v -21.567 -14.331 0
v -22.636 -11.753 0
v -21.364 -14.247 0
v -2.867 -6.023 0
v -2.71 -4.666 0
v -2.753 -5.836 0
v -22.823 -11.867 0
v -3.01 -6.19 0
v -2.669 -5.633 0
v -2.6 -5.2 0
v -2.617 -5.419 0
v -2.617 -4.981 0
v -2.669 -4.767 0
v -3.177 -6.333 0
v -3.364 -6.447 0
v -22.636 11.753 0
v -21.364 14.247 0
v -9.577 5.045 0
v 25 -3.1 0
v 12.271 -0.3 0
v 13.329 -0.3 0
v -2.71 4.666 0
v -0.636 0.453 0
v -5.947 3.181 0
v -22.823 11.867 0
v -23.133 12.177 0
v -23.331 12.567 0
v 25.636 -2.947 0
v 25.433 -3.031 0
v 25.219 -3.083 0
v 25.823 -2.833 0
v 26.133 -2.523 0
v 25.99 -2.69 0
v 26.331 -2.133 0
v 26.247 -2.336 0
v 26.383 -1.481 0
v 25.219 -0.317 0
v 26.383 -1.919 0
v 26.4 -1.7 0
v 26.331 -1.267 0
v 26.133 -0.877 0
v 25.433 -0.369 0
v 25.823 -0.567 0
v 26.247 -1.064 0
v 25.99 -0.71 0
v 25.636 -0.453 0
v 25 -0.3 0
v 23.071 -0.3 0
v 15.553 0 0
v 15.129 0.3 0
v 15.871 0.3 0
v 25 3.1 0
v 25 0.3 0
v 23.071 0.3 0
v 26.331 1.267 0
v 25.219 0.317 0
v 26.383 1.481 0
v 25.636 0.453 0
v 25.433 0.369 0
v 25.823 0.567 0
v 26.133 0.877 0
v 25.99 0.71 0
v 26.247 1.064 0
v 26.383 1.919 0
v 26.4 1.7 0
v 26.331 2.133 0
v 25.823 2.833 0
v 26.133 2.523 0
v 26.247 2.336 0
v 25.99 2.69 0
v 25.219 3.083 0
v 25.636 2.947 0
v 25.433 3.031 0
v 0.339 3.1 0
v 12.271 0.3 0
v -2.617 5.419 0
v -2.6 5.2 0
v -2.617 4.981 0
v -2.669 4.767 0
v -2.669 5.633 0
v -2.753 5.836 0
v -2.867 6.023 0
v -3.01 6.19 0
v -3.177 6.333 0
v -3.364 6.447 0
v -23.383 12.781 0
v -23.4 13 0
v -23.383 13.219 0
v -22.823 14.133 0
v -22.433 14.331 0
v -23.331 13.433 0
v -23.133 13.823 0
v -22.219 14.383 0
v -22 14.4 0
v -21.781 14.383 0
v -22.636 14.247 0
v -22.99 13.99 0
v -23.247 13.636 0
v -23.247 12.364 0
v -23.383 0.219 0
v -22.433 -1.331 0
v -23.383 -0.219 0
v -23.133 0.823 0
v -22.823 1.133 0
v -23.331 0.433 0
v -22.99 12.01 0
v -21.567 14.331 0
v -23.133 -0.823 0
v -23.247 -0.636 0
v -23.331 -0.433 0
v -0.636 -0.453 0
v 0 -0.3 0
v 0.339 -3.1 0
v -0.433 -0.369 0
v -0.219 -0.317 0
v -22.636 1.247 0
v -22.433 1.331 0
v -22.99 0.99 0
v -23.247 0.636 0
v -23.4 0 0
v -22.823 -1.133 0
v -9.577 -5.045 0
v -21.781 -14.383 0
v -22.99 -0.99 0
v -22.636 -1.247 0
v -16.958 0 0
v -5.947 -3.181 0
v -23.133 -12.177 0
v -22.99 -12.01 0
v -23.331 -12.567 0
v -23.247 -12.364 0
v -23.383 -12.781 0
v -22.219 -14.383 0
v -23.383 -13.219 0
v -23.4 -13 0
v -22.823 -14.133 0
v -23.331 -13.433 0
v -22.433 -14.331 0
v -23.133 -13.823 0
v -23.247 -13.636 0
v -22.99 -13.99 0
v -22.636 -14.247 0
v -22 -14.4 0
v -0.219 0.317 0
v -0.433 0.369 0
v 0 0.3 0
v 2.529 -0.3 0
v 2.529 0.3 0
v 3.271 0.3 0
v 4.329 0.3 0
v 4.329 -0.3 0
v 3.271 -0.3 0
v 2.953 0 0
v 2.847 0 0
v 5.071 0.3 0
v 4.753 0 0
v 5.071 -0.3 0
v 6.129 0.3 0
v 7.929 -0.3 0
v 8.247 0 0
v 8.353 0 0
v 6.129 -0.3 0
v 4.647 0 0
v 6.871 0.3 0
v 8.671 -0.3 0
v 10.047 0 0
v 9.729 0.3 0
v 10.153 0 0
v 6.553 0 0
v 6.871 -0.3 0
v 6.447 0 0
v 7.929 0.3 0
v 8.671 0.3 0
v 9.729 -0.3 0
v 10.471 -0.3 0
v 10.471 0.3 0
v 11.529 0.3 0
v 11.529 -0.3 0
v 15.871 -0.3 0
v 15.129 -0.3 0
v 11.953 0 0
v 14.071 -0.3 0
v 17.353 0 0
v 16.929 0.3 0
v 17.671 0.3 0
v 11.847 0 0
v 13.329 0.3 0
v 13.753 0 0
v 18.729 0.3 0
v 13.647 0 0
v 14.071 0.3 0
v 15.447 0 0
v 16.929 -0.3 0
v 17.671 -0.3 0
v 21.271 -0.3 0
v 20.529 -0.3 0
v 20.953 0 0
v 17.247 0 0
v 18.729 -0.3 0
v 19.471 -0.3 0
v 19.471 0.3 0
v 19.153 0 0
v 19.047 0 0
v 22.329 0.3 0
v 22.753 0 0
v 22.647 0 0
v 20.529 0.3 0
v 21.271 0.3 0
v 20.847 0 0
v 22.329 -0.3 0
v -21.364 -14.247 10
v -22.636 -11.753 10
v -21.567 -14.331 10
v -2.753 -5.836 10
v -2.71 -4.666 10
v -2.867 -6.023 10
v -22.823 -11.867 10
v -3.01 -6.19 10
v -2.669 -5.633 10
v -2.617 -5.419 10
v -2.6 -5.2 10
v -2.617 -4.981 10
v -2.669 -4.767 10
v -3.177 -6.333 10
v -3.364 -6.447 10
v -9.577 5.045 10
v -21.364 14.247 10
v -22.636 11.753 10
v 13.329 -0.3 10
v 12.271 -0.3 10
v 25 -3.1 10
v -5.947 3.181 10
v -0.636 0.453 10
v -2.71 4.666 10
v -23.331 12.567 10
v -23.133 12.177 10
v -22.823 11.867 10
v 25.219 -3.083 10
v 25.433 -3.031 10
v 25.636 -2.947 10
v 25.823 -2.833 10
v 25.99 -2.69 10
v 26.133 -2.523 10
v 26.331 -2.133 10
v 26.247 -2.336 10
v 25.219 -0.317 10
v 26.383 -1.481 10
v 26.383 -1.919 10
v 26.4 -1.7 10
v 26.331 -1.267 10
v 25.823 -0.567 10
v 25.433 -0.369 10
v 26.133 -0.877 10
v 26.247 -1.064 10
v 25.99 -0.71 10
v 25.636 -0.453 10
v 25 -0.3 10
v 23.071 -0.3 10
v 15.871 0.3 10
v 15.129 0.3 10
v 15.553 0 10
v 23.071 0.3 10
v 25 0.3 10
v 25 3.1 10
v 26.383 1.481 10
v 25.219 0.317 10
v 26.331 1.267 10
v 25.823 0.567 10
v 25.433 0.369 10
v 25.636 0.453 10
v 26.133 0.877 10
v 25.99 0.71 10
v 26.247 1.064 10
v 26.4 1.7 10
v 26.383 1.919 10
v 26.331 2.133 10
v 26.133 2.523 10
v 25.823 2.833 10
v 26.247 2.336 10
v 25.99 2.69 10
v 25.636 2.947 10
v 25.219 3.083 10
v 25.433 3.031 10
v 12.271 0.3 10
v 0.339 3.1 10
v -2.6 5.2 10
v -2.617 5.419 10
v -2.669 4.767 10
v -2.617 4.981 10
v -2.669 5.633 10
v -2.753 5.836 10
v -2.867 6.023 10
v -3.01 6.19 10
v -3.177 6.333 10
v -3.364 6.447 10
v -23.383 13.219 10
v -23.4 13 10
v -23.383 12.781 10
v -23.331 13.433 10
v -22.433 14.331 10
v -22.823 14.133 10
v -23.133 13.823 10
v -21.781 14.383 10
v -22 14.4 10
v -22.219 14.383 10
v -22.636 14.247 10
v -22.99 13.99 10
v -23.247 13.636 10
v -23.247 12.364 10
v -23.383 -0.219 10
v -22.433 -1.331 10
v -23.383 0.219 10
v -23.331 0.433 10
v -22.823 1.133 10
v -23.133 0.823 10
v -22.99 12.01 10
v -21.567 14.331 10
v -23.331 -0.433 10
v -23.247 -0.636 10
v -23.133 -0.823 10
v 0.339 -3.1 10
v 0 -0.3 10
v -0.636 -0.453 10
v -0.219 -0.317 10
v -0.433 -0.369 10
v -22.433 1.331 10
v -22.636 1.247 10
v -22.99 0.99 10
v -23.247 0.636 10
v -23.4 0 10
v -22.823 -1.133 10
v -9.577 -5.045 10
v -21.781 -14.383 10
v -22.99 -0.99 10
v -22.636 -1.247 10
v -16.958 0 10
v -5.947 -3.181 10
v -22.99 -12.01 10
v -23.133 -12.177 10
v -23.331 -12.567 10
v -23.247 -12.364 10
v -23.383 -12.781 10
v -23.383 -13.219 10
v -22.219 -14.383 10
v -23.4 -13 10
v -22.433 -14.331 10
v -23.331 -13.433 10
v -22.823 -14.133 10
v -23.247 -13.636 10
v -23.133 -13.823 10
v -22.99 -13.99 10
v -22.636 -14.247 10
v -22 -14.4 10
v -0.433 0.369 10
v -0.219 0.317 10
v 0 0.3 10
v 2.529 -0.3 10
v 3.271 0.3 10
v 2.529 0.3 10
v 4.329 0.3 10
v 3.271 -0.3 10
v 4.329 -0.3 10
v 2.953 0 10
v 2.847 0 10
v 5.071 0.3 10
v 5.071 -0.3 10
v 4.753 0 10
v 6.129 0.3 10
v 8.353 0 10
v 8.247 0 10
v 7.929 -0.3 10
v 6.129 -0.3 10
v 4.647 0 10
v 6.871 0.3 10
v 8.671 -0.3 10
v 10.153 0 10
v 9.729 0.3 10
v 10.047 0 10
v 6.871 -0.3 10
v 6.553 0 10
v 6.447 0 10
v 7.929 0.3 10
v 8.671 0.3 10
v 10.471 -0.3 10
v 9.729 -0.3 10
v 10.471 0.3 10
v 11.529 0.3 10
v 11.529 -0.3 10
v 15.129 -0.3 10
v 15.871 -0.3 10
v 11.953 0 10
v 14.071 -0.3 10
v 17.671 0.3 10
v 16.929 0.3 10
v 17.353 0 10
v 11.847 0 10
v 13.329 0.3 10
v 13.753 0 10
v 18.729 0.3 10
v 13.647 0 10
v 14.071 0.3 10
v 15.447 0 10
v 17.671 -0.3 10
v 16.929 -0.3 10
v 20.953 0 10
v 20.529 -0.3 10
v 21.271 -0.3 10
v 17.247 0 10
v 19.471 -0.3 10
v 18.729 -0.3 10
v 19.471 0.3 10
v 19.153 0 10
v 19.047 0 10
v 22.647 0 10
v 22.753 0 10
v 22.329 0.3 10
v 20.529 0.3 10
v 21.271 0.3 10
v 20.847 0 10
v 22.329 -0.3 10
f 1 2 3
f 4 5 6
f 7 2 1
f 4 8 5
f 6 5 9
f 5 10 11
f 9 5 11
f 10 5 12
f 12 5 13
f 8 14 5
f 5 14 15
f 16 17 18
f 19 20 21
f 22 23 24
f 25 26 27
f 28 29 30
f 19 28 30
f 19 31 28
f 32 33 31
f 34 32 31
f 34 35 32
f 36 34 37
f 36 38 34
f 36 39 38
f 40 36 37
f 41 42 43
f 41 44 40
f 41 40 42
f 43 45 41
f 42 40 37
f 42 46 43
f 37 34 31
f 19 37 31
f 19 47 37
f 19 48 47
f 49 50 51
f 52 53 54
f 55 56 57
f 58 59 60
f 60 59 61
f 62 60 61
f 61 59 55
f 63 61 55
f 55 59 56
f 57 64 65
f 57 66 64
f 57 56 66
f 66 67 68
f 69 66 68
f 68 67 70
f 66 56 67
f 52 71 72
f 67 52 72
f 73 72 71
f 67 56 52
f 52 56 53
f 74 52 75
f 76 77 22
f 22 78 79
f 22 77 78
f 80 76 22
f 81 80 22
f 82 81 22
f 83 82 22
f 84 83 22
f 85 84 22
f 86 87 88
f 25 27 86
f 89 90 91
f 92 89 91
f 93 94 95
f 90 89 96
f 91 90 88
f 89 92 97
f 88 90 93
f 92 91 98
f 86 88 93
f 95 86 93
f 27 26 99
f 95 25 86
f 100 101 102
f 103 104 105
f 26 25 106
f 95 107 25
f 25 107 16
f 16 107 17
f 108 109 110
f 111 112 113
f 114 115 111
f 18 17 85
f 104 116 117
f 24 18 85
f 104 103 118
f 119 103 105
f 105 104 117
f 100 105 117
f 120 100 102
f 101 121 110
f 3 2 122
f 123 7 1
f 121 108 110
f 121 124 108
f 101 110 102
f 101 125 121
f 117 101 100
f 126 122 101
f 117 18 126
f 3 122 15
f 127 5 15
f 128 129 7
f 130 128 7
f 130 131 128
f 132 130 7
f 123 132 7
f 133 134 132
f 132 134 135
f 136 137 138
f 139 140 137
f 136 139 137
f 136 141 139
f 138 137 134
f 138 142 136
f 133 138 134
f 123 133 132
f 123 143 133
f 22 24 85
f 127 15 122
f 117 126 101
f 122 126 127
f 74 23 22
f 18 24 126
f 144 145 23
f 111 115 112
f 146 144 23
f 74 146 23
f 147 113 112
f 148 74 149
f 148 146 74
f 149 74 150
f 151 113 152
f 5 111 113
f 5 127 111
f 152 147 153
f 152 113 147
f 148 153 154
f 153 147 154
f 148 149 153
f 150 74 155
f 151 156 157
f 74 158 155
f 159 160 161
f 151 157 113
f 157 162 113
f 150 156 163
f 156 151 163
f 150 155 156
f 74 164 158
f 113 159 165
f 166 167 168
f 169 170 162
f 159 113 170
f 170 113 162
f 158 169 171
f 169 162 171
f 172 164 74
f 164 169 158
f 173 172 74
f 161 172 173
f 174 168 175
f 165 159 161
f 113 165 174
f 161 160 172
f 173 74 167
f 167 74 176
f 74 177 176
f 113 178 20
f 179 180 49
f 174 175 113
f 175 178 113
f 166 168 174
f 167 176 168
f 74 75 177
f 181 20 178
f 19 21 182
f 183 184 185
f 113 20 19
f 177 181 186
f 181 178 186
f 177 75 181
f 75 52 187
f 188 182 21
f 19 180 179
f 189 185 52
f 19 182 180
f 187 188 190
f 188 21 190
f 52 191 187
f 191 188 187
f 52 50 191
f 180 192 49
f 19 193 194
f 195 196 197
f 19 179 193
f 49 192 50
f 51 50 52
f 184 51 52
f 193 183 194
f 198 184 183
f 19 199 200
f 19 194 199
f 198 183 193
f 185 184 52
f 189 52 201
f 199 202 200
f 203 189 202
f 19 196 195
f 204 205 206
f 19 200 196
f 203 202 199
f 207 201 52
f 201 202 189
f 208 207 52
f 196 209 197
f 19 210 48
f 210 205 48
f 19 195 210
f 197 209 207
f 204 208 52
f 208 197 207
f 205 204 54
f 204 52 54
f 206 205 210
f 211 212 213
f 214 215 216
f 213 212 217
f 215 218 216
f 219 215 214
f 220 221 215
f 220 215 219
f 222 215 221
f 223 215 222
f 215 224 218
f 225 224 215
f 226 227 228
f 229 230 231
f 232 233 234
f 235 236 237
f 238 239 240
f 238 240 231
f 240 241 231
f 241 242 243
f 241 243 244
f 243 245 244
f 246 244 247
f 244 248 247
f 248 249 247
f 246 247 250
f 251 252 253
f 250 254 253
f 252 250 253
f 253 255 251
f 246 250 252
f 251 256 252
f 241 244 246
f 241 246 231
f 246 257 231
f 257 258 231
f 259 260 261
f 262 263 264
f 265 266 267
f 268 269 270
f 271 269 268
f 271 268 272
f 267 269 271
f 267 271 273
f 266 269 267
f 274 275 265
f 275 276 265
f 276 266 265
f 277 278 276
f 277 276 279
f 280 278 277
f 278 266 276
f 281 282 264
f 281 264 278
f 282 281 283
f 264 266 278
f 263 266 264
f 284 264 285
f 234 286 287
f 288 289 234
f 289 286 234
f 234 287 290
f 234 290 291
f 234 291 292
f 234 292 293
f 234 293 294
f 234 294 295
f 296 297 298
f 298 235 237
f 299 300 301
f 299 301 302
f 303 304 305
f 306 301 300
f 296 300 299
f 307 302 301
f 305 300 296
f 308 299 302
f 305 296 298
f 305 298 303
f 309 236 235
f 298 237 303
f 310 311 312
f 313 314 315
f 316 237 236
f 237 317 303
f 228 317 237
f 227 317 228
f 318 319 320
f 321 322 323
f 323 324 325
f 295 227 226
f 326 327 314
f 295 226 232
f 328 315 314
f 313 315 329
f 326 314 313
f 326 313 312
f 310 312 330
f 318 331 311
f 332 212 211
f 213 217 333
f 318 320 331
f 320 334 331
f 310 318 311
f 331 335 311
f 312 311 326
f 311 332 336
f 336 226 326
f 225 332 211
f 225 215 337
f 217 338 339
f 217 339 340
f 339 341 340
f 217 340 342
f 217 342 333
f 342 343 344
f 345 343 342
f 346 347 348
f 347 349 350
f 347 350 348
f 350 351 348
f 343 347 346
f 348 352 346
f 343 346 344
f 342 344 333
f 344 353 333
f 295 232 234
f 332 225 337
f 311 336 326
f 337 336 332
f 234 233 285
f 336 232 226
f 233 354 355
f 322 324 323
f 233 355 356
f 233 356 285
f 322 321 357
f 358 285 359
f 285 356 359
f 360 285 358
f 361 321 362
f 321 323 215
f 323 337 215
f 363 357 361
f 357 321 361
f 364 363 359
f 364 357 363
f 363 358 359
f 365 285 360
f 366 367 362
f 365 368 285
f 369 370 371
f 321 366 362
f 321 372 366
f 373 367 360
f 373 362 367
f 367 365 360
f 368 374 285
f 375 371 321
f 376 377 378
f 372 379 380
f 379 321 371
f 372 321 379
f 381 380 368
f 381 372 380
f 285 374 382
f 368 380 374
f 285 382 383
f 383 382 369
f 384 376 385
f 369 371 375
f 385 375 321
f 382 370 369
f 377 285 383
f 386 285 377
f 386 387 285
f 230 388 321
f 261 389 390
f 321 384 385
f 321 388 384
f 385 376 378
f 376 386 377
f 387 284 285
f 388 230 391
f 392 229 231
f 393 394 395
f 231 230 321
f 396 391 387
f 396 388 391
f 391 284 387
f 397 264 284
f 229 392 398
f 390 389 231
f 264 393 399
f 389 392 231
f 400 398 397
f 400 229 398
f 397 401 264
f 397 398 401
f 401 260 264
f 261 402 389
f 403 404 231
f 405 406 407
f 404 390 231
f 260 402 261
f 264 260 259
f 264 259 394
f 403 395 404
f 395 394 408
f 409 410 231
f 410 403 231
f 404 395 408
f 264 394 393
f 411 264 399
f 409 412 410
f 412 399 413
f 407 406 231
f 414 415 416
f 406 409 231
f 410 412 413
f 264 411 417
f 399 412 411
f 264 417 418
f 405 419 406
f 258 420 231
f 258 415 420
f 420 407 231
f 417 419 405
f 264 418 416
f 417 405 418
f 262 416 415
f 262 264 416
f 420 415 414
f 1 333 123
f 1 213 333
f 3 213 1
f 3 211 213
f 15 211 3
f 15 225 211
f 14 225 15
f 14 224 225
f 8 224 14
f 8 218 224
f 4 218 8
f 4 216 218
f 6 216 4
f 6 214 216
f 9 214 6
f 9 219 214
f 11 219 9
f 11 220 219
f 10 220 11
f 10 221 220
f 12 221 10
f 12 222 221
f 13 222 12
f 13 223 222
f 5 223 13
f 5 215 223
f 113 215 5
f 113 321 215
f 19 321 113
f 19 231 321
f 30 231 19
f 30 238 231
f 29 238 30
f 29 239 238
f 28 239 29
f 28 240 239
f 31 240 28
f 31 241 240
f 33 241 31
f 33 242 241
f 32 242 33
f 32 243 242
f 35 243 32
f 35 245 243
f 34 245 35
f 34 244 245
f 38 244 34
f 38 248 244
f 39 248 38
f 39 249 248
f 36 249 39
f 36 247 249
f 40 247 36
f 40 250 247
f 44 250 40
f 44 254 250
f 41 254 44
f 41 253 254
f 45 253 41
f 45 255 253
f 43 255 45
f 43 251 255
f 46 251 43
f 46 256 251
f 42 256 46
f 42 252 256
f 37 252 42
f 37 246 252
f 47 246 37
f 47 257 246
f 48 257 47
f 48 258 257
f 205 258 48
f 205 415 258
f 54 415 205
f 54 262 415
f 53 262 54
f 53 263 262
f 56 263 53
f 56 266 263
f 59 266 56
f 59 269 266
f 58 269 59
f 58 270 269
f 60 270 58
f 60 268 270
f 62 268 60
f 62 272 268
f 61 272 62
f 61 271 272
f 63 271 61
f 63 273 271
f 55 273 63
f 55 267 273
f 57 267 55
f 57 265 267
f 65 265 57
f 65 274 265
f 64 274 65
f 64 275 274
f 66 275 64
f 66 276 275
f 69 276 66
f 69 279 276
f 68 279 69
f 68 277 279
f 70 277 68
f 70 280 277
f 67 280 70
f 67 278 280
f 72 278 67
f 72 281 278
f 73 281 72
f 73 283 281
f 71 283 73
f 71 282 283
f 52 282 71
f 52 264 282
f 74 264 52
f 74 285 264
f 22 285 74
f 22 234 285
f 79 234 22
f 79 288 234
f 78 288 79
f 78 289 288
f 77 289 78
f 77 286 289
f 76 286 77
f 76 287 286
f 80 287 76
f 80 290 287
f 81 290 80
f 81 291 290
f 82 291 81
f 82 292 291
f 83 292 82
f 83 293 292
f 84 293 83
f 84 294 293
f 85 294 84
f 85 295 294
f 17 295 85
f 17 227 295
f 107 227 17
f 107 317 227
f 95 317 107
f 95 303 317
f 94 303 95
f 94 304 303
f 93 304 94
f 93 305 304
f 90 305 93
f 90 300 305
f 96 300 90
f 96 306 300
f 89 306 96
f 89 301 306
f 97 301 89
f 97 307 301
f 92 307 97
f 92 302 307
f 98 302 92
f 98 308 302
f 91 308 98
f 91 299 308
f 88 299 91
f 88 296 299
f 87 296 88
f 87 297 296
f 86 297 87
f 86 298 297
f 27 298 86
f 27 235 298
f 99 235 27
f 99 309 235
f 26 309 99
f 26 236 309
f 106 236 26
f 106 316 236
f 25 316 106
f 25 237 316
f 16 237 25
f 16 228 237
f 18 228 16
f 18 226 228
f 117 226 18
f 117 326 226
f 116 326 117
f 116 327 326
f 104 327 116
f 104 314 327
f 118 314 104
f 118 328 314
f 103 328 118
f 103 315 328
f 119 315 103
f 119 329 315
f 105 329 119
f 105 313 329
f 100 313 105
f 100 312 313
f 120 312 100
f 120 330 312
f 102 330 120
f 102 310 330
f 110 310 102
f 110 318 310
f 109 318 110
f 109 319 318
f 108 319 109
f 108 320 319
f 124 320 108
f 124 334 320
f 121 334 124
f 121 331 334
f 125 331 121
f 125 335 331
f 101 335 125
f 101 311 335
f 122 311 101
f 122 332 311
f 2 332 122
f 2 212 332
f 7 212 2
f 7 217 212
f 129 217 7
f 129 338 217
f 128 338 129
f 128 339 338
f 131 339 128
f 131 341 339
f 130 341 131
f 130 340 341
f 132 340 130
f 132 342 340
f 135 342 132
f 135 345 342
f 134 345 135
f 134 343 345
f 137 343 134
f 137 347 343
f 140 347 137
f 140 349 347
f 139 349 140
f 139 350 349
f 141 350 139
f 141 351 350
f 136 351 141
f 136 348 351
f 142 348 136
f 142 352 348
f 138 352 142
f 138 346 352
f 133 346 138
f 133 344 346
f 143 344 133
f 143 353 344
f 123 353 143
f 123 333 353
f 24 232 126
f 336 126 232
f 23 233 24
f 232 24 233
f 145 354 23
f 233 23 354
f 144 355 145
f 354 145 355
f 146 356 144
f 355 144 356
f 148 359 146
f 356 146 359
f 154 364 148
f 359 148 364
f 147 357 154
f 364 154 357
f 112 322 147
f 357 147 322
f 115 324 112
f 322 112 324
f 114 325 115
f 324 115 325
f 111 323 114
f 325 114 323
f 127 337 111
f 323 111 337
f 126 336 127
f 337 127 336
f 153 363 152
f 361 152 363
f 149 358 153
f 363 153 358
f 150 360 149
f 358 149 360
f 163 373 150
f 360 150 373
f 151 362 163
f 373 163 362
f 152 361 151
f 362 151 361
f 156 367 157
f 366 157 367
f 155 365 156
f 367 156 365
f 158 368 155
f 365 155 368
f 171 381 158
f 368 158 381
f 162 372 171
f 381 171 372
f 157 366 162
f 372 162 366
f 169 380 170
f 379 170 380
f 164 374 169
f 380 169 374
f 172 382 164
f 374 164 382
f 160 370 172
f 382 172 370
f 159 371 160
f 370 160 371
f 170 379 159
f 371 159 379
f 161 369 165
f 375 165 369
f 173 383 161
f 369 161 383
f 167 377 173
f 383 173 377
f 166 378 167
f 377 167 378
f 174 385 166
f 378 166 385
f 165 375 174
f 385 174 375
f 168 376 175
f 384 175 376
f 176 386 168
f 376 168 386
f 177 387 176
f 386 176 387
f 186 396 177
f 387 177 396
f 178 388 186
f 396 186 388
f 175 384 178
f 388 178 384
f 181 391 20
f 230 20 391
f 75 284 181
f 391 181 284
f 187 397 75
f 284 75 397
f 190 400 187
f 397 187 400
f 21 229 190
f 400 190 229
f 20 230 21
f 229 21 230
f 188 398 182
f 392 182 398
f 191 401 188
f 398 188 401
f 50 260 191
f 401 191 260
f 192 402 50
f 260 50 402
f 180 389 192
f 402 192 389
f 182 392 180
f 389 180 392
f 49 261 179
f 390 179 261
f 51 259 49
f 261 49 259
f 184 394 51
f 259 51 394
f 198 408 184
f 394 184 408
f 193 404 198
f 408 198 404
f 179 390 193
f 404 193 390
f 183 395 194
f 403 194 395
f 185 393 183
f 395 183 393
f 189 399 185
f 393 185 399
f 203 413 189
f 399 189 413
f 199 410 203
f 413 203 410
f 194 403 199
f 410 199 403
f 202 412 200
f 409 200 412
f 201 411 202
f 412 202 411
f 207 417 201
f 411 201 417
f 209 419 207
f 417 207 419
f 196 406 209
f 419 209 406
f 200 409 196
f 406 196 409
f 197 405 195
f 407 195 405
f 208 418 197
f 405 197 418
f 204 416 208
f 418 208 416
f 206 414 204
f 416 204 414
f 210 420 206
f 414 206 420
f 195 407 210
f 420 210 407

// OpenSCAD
// bagclip_serpentine — copied from Food_Clip_4.stl. Serrated jaws (right) held
// closed by a zig-zag "W" leaf spring (left). The jaw slot runs straight through
// into the open zig-zag, so squeezing the spring cantilevers the jaws open; the
// bag's folded top sits in the serrated jaws. Flat profile extruded along Z;
// prints flat, support-free.

/* [Size] */
jaw_tip   = 25;    // x of the jaw tips (right)
jaw_x     = 0;     // x where the jaws end and the spring begins
arm_t     = 2.8;   // arm thickness
bite      = 10;    // Z depth
jg        = 1.7;   // jaw half-gap (small -> grips)
amp       = 13;    // zig-zag amplitude
zz_l      = -22;   // left vertices of the zig-zag
zz_r      = -4;    // inner (right) vertices of the zig-zag

/* [Teeth] */
tooth_d = 0.35;
tooth_p = 1.8;

$fn = 40;

module ribbon(p, t) {
  for (i = [0 : len(p)-2])
    hull() { translate(p[i]) circle(d=t); translate(p[i+1]) circle(d=t); }
}

// top jaw (right) -> sigma zig-zag spring (left) -> bottom jaw (right)
centerline = [
  [jaw_tip, jg], [jaw_x, jg],                 // top jaw
  [zz_l, amp], [zz_r, amp*0.4],               // zig-zag: top-left vertex, in
  [zz_l, 0],                                  //          mid-left vertex
  [zz_r, -amp*0.4], [zz_l, -amp],             //          in, bottom-left vertex
  [jaw_x, -jg], [jaw_tip, -jg],               // bottom jaw
];

module teeth(fy, dir) {
  for (x = [jaw_x + 2 : tooth_p : jaw_tip - 2])
    polygon([[x, fy - dir*0.5], [x + tooth_p/2, fy + dir*tooth_d], [x + tooth_p, fy - dir*0.5]]);
}

module clip2d() {
  union() {
    ribbon(centerline, arm_t);
    teeth( jg - arm_t/2, -1);   // top jaw inner (bottom) face
    teeth(-jg + arm_t/2, +1);   // bottom jaw inner (top) face
  }
}

linear_extrude(bite) clip2d();
